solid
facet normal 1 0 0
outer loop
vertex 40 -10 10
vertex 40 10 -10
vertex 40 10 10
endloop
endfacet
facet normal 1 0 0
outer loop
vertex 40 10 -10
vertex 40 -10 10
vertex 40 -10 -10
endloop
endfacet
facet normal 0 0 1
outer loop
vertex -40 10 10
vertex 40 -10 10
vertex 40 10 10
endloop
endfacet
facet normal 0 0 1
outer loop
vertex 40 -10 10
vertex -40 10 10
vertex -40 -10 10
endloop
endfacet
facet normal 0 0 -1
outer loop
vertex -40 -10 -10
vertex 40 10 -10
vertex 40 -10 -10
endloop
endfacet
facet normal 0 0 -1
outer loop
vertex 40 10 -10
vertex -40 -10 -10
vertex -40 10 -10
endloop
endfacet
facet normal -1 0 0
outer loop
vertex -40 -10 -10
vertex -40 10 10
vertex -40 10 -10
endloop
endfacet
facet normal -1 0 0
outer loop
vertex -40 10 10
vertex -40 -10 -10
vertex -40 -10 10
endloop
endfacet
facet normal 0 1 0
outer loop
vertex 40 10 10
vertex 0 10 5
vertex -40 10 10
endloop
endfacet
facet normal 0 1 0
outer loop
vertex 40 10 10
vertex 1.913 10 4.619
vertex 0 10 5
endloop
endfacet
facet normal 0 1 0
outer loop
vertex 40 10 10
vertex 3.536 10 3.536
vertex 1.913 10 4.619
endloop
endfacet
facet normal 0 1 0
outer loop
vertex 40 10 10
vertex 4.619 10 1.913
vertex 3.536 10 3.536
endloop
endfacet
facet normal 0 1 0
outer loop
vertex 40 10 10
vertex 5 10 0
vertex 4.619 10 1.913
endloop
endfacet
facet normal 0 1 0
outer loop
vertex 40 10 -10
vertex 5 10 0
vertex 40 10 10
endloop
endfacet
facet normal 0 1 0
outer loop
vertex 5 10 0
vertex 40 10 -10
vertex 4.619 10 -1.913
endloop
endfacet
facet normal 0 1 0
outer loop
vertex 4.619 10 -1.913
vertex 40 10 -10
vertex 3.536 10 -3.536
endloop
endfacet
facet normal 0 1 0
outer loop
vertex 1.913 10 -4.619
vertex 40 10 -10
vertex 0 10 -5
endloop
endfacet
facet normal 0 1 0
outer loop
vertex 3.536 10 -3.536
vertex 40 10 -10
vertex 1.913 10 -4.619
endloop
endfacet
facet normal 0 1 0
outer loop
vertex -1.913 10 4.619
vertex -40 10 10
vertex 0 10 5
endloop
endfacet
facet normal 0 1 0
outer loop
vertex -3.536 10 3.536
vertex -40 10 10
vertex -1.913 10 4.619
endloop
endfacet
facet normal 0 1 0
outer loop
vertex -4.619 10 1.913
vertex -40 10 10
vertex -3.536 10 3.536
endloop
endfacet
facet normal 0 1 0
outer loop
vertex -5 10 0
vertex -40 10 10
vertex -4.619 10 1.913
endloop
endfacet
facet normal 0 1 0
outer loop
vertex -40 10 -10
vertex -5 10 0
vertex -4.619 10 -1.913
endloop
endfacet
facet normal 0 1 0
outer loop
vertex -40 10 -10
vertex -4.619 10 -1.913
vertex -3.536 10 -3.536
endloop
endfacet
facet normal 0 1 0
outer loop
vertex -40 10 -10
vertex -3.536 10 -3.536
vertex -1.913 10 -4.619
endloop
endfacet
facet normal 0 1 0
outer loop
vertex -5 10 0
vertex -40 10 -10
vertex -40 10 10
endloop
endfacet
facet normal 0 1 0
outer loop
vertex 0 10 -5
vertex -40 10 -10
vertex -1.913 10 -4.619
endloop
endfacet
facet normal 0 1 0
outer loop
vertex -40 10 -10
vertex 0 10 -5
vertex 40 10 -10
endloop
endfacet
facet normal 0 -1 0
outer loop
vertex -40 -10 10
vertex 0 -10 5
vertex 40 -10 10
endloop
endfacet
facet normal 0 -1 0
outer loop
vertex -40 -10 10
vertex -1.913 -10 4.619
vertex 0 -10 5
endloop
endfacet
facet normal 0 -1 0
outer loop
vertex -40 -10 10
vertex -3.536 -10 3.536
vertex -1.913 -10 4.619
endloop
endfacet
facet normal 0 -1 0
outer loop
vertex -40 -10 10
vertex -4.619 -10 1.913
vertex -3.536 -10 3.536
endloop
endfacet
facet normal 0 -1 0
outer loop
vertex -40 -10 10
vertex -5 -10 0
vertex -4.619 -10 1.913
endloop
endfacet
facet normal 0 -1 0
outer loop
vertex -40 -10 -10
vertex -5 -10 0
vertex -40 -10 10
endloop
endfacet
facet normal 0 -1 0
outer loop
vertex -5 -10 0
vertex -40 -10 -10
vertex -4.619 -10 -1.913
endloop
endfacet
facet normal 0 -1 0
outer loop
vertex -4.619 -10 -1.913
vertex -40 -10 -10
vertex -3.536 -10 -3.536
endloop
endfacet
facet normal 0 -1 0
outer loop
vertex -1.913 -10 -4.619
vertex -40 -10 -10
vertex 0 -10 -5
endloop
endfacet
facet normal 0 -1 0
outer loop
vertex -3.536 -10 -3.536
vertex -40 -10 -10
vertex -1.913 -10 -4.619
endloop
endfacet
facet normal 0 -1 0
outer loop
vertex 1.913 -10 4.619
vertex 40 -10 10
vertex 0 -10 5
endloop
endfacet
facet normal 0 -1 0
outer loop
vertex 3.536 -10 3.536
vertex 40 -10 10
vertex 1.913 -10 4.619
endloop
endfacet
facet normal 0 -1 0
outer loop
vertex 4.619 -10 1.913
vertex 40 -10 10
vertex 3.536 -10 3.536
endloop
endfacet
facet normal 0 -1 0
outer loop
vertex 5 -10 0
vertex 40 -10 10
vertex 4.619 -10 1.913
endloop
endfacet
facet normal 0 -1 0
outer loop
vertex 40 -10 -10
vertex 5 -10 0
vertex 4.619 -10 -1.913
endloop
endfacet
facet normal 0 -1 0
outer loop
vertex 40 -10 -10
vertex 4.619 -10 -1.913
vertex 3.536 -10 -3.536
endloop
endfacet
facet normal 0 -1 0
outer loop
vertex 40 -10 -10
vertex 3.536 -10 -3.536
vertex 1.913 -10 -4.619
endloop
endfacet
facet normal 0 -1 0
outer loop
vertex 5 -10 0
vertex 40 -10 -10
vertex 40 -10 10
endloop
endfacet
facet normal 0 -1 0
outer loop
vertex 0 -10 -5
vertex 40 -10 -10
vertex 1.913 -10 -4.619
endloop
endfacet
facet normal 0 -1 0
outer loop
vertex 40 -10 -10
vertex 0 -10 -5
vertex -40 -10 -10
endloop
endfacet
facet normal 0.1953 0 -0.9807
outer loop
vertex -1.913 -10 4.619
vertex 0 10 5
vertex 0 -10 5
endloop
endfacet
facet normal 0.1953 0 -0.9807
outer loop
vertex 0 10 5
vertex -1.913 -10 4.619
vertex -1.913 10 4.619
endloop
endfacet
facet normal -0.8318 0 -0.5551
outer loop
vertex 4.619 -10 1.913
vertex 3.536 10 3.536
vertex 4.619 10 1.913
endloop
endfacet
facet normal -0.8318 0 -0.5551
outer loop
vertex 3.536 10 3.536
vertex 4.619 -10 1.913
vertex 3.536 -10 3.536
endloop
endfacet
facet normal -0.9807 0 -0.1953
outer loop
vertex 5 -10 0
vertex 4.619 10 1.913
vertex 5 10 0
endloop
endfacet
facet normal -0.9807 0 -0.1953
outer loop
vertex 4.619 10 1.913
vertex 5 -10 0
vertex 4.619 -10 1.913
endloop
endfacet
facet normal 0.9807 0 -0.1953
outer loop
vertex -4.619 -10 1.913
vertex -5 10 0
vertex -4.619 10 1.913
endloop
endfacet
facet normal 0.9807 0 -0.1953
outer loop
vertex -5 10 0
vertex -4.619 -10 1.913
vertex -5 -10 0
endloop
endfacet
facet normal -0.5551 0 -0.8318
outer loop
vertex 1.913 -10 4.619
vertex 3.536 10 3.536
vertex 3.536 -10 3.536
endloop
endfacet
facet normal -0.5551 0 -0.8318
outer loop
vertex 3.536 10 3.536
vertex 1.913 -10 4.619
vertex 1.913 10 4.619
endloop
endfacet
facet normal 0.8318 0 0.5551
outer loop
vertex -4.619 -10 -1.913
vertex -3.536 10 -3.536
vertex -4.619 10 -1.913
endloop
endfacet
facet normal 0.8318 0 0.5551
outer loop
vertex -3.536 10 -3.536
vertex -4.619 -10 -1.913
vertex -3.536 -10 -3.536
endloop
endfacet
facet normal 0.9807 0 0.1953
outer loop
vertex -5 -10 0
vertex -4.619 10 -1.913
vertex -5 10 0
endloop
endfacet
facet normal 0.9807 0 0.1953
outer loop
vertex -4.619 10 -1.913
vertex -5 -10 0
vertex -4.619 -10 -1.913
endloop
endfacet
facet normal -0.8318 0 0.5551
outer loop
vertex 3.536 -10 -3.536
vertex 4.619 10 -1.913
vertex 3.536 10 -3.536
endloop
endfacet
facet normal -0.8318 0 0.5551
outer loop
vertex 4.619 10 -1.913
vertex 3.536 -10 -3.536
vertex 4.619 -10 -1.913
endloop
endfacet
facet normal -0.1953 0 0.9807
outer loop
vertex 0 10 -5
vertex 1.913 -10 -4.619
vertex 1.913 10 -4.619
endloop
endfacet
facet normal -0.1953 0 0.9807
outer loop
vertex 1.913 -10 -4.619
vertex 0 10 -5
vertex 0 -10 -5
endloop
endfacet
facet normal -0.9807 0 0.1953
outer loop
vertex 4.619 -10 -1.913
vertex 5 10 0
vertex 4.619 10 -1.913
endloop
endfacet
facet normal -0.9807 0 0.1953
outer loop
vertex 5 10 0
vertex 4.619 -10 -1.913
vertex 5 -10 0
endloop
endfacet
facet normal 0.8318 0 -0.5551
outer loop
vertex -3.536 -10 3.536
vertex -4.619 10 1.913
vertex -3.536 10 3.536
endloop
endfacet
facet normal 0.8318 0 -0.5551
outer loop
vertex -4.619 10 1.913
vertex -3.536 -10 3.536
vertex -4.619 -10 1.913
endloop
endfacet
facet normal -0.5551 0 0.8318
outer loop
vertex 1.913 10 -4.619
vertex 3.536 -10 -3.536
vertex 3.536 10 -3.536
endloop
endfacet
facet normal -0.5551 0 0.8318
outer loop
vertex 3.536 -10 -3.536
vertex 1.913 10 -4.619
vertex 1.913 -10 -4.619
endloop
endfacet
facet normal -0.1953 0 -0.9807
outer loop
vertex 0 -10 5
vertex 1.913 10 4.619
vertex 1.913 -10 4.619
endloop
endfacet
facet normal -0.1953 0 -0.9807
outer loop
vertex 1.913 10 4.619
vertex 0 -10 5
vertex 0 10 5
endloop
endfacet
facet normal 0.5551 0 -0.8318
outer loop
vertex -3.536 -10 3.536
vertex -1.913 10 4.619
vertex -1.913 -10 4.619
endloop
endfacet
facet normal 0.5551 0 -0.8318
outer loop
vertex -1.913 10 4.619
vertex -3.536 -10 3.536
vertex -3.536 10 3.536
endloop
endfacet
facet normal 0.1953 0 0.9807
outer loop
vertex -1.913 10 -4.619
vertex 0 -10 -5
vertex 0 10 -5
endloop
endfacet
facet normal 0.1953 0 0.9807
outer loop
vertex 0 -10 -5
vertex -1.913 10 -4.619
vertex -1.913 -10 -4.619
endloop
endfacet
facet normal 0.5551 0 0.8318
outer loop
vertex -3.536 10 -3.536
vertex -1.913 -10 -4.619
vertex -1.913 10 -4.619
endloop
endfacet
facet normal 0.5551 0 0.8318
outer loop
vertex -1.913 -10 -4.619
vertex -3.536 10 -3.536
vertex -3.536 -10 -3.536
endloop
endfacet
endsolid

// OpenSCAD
// Parameters for the central block
central_block_length = 80;  // Updated length of the rectangular prism to match the original model
central_block_width = 20;   // Width of the rectangular prism remains the same
central_block_height = 20;  // Height of the rectangular prism remains the same
hole_diameter = 10;         // Diameter of the circular hole remains the same

// Function to create the central block
module central_block() {
    difference() {
        // Create the rectangular prism
        cube([central_block_length, central_block_width, central_block_height], center = true);
        
        // Create the circular hole
        rotate([90, 0, 0])  // Rotate the cylinder to align with the block
        translate([0, 0, 0])  // Reposition the hole to the center of the block along its length
        cylinder(h = central_block_width + 2, d = hole_diameter, center = true);
    }
}

// Render the central block
central_block();
